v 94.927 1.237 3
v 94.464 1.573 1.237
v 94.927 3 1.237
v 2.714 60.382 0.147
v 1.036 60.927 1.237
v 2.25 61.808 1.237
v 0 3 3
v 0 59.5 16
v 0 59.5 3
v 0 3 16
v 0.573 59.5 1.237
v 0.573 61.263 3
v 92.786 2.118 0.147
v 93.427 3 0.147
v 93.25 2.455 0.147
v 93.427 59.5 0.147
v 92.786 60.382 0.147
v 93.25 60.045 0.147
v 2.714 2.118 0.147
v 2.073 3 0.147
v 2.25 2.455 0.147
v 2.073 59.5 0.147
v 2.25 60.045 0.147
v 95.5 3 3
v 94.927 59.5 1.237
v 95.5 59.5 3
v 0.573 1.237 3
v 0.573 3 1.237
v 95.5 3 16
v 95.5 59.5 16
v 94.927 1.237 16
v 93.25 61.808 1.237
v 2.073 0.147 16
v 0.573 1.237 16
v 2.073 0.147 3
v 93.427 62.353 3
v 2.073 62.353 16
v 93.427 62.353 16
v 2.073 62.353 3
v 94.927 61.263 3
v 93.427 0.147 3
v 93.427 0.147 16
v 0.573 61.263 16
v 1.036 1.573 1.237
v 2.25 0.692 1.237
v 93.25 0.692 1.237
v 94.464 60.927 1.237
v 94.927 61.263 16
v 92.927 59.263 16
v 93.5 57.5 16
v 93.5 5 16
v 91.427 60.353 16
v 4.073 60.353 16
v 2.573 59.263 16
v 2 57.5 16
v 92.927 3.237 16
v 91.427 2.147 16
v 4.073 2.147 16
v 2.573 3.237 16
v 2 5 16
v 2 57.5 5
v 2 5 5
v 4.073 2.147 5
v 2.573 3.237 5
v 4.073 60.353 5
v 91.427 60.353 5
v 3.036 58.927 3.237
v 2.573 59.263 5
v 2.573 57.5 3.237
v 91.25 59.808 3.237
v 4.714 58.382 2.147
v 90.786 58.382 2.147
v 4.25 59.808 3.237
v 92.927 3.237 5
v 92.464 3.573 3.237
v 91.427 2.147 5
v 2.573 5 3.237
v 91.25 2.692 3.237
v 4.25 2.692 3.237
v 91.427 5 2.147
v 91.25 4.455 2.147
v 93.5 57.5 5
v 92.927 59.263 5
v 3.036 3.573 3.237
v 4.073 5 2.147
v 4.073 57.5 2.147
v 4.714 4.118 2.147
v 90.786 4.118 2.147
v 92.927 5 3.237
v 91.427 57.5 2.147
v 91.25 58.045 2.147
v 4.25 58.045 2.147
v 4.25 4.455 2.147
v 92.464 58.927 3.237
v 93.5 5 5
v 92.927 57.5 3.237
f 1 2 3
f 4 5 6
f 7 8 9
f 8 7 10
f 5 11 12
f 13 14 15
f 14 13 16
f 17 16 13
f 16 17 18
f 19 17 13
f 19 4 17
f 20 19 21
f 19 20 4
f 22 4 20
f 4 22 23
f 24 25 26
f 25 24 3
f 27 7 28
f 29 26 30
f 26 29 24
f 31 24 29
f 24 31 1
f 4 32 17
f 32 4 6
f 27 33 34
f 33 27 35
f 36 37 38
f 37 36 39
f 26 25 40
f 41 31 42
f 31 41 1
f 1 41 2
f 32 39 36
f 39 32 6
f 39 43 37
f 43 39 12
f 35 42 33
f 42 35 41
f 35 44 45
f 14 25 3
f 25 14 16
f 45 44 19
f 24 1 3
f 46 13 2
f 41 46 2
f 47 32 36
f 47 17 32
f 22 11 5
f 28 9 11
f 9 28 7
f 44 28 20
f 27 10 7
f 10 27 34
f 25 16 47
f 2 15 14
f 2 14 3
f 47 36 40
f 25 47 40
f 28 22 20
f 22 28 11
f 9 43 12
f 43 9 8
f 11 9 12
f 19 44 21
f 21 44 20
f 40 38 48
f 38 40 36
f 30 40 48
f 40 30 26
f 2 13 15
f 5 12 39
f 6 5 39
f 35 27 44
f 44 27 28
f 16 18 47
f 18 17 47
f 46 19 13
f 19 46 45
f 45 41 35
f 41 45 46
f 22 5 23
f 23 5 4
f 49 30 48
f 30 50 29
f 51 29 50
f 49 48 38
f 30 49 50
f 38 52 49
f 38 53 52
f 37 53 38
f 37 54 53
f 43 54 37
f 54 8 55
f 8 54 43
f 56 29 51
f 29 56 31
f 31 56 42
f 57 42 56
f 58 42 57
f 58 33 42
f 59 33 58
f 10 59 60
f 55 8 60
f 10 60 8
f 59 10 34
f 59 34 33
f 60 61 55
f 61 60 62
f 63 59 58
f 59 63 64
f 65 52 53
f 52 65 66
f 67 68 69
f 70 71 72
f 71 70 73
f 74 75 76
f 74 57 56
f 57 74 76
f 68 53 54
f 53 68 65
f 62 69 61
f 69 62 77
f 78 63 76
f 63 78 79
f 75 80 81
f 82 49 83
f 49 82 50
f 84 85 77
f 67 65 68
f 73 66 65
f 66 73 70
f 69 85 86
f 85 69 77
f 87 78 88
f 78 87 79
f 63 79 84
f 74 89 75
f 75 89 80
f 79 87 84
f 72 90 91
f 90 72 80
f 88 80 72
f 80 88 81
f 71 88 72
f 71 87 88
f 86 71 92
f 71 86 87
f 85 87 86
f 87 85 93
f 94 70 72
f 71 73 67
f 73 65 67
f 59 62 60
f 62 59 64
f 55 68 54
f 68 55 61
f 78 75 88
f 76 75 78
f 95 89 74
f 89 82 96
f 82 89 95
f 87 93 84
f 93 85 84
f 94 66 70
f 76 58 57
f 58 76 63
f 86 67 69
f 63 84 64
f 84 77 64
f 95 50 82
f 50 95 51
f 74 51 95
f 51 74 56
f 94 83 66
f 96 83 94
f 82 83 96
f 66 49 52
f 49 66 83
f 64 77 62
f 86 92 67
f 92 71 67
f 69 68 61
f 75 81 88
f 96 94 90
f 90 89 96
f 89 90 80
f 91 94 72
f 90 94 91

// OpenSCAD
echo(version=version());

// Settings
box_length = 95.5;
box_width = 62.5;
box_height = 16;
wall_thickness = 2;

rounding = 3;
bleed = 1;

// Derived attributes
r_box_length = box_length-rounding*2;
r_box_width = box_width-rounding*2;
r_box_height = box_height-rounding*2+rounding+bleed;

r_hollow_length = box_length-rounding*2-wall_thickness*2;
r_hollow_width = box_width-rounding*2-wall_thickness*2;
r_hollow_height = box_height-rounding*2+rounding+bleed;
r_hollow_offset = rounding+wall_thickness;

difference() {
  // Base tray
  minkowski() {
    translate([rounding, rounding, rounding]) {
      cube([r_box_length, r_box_width, r_box_height]);
    }
    sphere(rounding);
  }

  // Slice off top
  translate([-bleed,-bleed,box_height]) {
    cube([box_length+bleed*2, box_width+bleed*2, rounding+bleed]);
  }

  // Hollow out tray
  minkowski() {
    translate([r_hollow_offset, r_hollow_offset, r_hollow_offset]) {
      cube([r_hollow_length, r_hollow_width, r_hollow_height]);
    }
    sphere(rounding);
  }
}
